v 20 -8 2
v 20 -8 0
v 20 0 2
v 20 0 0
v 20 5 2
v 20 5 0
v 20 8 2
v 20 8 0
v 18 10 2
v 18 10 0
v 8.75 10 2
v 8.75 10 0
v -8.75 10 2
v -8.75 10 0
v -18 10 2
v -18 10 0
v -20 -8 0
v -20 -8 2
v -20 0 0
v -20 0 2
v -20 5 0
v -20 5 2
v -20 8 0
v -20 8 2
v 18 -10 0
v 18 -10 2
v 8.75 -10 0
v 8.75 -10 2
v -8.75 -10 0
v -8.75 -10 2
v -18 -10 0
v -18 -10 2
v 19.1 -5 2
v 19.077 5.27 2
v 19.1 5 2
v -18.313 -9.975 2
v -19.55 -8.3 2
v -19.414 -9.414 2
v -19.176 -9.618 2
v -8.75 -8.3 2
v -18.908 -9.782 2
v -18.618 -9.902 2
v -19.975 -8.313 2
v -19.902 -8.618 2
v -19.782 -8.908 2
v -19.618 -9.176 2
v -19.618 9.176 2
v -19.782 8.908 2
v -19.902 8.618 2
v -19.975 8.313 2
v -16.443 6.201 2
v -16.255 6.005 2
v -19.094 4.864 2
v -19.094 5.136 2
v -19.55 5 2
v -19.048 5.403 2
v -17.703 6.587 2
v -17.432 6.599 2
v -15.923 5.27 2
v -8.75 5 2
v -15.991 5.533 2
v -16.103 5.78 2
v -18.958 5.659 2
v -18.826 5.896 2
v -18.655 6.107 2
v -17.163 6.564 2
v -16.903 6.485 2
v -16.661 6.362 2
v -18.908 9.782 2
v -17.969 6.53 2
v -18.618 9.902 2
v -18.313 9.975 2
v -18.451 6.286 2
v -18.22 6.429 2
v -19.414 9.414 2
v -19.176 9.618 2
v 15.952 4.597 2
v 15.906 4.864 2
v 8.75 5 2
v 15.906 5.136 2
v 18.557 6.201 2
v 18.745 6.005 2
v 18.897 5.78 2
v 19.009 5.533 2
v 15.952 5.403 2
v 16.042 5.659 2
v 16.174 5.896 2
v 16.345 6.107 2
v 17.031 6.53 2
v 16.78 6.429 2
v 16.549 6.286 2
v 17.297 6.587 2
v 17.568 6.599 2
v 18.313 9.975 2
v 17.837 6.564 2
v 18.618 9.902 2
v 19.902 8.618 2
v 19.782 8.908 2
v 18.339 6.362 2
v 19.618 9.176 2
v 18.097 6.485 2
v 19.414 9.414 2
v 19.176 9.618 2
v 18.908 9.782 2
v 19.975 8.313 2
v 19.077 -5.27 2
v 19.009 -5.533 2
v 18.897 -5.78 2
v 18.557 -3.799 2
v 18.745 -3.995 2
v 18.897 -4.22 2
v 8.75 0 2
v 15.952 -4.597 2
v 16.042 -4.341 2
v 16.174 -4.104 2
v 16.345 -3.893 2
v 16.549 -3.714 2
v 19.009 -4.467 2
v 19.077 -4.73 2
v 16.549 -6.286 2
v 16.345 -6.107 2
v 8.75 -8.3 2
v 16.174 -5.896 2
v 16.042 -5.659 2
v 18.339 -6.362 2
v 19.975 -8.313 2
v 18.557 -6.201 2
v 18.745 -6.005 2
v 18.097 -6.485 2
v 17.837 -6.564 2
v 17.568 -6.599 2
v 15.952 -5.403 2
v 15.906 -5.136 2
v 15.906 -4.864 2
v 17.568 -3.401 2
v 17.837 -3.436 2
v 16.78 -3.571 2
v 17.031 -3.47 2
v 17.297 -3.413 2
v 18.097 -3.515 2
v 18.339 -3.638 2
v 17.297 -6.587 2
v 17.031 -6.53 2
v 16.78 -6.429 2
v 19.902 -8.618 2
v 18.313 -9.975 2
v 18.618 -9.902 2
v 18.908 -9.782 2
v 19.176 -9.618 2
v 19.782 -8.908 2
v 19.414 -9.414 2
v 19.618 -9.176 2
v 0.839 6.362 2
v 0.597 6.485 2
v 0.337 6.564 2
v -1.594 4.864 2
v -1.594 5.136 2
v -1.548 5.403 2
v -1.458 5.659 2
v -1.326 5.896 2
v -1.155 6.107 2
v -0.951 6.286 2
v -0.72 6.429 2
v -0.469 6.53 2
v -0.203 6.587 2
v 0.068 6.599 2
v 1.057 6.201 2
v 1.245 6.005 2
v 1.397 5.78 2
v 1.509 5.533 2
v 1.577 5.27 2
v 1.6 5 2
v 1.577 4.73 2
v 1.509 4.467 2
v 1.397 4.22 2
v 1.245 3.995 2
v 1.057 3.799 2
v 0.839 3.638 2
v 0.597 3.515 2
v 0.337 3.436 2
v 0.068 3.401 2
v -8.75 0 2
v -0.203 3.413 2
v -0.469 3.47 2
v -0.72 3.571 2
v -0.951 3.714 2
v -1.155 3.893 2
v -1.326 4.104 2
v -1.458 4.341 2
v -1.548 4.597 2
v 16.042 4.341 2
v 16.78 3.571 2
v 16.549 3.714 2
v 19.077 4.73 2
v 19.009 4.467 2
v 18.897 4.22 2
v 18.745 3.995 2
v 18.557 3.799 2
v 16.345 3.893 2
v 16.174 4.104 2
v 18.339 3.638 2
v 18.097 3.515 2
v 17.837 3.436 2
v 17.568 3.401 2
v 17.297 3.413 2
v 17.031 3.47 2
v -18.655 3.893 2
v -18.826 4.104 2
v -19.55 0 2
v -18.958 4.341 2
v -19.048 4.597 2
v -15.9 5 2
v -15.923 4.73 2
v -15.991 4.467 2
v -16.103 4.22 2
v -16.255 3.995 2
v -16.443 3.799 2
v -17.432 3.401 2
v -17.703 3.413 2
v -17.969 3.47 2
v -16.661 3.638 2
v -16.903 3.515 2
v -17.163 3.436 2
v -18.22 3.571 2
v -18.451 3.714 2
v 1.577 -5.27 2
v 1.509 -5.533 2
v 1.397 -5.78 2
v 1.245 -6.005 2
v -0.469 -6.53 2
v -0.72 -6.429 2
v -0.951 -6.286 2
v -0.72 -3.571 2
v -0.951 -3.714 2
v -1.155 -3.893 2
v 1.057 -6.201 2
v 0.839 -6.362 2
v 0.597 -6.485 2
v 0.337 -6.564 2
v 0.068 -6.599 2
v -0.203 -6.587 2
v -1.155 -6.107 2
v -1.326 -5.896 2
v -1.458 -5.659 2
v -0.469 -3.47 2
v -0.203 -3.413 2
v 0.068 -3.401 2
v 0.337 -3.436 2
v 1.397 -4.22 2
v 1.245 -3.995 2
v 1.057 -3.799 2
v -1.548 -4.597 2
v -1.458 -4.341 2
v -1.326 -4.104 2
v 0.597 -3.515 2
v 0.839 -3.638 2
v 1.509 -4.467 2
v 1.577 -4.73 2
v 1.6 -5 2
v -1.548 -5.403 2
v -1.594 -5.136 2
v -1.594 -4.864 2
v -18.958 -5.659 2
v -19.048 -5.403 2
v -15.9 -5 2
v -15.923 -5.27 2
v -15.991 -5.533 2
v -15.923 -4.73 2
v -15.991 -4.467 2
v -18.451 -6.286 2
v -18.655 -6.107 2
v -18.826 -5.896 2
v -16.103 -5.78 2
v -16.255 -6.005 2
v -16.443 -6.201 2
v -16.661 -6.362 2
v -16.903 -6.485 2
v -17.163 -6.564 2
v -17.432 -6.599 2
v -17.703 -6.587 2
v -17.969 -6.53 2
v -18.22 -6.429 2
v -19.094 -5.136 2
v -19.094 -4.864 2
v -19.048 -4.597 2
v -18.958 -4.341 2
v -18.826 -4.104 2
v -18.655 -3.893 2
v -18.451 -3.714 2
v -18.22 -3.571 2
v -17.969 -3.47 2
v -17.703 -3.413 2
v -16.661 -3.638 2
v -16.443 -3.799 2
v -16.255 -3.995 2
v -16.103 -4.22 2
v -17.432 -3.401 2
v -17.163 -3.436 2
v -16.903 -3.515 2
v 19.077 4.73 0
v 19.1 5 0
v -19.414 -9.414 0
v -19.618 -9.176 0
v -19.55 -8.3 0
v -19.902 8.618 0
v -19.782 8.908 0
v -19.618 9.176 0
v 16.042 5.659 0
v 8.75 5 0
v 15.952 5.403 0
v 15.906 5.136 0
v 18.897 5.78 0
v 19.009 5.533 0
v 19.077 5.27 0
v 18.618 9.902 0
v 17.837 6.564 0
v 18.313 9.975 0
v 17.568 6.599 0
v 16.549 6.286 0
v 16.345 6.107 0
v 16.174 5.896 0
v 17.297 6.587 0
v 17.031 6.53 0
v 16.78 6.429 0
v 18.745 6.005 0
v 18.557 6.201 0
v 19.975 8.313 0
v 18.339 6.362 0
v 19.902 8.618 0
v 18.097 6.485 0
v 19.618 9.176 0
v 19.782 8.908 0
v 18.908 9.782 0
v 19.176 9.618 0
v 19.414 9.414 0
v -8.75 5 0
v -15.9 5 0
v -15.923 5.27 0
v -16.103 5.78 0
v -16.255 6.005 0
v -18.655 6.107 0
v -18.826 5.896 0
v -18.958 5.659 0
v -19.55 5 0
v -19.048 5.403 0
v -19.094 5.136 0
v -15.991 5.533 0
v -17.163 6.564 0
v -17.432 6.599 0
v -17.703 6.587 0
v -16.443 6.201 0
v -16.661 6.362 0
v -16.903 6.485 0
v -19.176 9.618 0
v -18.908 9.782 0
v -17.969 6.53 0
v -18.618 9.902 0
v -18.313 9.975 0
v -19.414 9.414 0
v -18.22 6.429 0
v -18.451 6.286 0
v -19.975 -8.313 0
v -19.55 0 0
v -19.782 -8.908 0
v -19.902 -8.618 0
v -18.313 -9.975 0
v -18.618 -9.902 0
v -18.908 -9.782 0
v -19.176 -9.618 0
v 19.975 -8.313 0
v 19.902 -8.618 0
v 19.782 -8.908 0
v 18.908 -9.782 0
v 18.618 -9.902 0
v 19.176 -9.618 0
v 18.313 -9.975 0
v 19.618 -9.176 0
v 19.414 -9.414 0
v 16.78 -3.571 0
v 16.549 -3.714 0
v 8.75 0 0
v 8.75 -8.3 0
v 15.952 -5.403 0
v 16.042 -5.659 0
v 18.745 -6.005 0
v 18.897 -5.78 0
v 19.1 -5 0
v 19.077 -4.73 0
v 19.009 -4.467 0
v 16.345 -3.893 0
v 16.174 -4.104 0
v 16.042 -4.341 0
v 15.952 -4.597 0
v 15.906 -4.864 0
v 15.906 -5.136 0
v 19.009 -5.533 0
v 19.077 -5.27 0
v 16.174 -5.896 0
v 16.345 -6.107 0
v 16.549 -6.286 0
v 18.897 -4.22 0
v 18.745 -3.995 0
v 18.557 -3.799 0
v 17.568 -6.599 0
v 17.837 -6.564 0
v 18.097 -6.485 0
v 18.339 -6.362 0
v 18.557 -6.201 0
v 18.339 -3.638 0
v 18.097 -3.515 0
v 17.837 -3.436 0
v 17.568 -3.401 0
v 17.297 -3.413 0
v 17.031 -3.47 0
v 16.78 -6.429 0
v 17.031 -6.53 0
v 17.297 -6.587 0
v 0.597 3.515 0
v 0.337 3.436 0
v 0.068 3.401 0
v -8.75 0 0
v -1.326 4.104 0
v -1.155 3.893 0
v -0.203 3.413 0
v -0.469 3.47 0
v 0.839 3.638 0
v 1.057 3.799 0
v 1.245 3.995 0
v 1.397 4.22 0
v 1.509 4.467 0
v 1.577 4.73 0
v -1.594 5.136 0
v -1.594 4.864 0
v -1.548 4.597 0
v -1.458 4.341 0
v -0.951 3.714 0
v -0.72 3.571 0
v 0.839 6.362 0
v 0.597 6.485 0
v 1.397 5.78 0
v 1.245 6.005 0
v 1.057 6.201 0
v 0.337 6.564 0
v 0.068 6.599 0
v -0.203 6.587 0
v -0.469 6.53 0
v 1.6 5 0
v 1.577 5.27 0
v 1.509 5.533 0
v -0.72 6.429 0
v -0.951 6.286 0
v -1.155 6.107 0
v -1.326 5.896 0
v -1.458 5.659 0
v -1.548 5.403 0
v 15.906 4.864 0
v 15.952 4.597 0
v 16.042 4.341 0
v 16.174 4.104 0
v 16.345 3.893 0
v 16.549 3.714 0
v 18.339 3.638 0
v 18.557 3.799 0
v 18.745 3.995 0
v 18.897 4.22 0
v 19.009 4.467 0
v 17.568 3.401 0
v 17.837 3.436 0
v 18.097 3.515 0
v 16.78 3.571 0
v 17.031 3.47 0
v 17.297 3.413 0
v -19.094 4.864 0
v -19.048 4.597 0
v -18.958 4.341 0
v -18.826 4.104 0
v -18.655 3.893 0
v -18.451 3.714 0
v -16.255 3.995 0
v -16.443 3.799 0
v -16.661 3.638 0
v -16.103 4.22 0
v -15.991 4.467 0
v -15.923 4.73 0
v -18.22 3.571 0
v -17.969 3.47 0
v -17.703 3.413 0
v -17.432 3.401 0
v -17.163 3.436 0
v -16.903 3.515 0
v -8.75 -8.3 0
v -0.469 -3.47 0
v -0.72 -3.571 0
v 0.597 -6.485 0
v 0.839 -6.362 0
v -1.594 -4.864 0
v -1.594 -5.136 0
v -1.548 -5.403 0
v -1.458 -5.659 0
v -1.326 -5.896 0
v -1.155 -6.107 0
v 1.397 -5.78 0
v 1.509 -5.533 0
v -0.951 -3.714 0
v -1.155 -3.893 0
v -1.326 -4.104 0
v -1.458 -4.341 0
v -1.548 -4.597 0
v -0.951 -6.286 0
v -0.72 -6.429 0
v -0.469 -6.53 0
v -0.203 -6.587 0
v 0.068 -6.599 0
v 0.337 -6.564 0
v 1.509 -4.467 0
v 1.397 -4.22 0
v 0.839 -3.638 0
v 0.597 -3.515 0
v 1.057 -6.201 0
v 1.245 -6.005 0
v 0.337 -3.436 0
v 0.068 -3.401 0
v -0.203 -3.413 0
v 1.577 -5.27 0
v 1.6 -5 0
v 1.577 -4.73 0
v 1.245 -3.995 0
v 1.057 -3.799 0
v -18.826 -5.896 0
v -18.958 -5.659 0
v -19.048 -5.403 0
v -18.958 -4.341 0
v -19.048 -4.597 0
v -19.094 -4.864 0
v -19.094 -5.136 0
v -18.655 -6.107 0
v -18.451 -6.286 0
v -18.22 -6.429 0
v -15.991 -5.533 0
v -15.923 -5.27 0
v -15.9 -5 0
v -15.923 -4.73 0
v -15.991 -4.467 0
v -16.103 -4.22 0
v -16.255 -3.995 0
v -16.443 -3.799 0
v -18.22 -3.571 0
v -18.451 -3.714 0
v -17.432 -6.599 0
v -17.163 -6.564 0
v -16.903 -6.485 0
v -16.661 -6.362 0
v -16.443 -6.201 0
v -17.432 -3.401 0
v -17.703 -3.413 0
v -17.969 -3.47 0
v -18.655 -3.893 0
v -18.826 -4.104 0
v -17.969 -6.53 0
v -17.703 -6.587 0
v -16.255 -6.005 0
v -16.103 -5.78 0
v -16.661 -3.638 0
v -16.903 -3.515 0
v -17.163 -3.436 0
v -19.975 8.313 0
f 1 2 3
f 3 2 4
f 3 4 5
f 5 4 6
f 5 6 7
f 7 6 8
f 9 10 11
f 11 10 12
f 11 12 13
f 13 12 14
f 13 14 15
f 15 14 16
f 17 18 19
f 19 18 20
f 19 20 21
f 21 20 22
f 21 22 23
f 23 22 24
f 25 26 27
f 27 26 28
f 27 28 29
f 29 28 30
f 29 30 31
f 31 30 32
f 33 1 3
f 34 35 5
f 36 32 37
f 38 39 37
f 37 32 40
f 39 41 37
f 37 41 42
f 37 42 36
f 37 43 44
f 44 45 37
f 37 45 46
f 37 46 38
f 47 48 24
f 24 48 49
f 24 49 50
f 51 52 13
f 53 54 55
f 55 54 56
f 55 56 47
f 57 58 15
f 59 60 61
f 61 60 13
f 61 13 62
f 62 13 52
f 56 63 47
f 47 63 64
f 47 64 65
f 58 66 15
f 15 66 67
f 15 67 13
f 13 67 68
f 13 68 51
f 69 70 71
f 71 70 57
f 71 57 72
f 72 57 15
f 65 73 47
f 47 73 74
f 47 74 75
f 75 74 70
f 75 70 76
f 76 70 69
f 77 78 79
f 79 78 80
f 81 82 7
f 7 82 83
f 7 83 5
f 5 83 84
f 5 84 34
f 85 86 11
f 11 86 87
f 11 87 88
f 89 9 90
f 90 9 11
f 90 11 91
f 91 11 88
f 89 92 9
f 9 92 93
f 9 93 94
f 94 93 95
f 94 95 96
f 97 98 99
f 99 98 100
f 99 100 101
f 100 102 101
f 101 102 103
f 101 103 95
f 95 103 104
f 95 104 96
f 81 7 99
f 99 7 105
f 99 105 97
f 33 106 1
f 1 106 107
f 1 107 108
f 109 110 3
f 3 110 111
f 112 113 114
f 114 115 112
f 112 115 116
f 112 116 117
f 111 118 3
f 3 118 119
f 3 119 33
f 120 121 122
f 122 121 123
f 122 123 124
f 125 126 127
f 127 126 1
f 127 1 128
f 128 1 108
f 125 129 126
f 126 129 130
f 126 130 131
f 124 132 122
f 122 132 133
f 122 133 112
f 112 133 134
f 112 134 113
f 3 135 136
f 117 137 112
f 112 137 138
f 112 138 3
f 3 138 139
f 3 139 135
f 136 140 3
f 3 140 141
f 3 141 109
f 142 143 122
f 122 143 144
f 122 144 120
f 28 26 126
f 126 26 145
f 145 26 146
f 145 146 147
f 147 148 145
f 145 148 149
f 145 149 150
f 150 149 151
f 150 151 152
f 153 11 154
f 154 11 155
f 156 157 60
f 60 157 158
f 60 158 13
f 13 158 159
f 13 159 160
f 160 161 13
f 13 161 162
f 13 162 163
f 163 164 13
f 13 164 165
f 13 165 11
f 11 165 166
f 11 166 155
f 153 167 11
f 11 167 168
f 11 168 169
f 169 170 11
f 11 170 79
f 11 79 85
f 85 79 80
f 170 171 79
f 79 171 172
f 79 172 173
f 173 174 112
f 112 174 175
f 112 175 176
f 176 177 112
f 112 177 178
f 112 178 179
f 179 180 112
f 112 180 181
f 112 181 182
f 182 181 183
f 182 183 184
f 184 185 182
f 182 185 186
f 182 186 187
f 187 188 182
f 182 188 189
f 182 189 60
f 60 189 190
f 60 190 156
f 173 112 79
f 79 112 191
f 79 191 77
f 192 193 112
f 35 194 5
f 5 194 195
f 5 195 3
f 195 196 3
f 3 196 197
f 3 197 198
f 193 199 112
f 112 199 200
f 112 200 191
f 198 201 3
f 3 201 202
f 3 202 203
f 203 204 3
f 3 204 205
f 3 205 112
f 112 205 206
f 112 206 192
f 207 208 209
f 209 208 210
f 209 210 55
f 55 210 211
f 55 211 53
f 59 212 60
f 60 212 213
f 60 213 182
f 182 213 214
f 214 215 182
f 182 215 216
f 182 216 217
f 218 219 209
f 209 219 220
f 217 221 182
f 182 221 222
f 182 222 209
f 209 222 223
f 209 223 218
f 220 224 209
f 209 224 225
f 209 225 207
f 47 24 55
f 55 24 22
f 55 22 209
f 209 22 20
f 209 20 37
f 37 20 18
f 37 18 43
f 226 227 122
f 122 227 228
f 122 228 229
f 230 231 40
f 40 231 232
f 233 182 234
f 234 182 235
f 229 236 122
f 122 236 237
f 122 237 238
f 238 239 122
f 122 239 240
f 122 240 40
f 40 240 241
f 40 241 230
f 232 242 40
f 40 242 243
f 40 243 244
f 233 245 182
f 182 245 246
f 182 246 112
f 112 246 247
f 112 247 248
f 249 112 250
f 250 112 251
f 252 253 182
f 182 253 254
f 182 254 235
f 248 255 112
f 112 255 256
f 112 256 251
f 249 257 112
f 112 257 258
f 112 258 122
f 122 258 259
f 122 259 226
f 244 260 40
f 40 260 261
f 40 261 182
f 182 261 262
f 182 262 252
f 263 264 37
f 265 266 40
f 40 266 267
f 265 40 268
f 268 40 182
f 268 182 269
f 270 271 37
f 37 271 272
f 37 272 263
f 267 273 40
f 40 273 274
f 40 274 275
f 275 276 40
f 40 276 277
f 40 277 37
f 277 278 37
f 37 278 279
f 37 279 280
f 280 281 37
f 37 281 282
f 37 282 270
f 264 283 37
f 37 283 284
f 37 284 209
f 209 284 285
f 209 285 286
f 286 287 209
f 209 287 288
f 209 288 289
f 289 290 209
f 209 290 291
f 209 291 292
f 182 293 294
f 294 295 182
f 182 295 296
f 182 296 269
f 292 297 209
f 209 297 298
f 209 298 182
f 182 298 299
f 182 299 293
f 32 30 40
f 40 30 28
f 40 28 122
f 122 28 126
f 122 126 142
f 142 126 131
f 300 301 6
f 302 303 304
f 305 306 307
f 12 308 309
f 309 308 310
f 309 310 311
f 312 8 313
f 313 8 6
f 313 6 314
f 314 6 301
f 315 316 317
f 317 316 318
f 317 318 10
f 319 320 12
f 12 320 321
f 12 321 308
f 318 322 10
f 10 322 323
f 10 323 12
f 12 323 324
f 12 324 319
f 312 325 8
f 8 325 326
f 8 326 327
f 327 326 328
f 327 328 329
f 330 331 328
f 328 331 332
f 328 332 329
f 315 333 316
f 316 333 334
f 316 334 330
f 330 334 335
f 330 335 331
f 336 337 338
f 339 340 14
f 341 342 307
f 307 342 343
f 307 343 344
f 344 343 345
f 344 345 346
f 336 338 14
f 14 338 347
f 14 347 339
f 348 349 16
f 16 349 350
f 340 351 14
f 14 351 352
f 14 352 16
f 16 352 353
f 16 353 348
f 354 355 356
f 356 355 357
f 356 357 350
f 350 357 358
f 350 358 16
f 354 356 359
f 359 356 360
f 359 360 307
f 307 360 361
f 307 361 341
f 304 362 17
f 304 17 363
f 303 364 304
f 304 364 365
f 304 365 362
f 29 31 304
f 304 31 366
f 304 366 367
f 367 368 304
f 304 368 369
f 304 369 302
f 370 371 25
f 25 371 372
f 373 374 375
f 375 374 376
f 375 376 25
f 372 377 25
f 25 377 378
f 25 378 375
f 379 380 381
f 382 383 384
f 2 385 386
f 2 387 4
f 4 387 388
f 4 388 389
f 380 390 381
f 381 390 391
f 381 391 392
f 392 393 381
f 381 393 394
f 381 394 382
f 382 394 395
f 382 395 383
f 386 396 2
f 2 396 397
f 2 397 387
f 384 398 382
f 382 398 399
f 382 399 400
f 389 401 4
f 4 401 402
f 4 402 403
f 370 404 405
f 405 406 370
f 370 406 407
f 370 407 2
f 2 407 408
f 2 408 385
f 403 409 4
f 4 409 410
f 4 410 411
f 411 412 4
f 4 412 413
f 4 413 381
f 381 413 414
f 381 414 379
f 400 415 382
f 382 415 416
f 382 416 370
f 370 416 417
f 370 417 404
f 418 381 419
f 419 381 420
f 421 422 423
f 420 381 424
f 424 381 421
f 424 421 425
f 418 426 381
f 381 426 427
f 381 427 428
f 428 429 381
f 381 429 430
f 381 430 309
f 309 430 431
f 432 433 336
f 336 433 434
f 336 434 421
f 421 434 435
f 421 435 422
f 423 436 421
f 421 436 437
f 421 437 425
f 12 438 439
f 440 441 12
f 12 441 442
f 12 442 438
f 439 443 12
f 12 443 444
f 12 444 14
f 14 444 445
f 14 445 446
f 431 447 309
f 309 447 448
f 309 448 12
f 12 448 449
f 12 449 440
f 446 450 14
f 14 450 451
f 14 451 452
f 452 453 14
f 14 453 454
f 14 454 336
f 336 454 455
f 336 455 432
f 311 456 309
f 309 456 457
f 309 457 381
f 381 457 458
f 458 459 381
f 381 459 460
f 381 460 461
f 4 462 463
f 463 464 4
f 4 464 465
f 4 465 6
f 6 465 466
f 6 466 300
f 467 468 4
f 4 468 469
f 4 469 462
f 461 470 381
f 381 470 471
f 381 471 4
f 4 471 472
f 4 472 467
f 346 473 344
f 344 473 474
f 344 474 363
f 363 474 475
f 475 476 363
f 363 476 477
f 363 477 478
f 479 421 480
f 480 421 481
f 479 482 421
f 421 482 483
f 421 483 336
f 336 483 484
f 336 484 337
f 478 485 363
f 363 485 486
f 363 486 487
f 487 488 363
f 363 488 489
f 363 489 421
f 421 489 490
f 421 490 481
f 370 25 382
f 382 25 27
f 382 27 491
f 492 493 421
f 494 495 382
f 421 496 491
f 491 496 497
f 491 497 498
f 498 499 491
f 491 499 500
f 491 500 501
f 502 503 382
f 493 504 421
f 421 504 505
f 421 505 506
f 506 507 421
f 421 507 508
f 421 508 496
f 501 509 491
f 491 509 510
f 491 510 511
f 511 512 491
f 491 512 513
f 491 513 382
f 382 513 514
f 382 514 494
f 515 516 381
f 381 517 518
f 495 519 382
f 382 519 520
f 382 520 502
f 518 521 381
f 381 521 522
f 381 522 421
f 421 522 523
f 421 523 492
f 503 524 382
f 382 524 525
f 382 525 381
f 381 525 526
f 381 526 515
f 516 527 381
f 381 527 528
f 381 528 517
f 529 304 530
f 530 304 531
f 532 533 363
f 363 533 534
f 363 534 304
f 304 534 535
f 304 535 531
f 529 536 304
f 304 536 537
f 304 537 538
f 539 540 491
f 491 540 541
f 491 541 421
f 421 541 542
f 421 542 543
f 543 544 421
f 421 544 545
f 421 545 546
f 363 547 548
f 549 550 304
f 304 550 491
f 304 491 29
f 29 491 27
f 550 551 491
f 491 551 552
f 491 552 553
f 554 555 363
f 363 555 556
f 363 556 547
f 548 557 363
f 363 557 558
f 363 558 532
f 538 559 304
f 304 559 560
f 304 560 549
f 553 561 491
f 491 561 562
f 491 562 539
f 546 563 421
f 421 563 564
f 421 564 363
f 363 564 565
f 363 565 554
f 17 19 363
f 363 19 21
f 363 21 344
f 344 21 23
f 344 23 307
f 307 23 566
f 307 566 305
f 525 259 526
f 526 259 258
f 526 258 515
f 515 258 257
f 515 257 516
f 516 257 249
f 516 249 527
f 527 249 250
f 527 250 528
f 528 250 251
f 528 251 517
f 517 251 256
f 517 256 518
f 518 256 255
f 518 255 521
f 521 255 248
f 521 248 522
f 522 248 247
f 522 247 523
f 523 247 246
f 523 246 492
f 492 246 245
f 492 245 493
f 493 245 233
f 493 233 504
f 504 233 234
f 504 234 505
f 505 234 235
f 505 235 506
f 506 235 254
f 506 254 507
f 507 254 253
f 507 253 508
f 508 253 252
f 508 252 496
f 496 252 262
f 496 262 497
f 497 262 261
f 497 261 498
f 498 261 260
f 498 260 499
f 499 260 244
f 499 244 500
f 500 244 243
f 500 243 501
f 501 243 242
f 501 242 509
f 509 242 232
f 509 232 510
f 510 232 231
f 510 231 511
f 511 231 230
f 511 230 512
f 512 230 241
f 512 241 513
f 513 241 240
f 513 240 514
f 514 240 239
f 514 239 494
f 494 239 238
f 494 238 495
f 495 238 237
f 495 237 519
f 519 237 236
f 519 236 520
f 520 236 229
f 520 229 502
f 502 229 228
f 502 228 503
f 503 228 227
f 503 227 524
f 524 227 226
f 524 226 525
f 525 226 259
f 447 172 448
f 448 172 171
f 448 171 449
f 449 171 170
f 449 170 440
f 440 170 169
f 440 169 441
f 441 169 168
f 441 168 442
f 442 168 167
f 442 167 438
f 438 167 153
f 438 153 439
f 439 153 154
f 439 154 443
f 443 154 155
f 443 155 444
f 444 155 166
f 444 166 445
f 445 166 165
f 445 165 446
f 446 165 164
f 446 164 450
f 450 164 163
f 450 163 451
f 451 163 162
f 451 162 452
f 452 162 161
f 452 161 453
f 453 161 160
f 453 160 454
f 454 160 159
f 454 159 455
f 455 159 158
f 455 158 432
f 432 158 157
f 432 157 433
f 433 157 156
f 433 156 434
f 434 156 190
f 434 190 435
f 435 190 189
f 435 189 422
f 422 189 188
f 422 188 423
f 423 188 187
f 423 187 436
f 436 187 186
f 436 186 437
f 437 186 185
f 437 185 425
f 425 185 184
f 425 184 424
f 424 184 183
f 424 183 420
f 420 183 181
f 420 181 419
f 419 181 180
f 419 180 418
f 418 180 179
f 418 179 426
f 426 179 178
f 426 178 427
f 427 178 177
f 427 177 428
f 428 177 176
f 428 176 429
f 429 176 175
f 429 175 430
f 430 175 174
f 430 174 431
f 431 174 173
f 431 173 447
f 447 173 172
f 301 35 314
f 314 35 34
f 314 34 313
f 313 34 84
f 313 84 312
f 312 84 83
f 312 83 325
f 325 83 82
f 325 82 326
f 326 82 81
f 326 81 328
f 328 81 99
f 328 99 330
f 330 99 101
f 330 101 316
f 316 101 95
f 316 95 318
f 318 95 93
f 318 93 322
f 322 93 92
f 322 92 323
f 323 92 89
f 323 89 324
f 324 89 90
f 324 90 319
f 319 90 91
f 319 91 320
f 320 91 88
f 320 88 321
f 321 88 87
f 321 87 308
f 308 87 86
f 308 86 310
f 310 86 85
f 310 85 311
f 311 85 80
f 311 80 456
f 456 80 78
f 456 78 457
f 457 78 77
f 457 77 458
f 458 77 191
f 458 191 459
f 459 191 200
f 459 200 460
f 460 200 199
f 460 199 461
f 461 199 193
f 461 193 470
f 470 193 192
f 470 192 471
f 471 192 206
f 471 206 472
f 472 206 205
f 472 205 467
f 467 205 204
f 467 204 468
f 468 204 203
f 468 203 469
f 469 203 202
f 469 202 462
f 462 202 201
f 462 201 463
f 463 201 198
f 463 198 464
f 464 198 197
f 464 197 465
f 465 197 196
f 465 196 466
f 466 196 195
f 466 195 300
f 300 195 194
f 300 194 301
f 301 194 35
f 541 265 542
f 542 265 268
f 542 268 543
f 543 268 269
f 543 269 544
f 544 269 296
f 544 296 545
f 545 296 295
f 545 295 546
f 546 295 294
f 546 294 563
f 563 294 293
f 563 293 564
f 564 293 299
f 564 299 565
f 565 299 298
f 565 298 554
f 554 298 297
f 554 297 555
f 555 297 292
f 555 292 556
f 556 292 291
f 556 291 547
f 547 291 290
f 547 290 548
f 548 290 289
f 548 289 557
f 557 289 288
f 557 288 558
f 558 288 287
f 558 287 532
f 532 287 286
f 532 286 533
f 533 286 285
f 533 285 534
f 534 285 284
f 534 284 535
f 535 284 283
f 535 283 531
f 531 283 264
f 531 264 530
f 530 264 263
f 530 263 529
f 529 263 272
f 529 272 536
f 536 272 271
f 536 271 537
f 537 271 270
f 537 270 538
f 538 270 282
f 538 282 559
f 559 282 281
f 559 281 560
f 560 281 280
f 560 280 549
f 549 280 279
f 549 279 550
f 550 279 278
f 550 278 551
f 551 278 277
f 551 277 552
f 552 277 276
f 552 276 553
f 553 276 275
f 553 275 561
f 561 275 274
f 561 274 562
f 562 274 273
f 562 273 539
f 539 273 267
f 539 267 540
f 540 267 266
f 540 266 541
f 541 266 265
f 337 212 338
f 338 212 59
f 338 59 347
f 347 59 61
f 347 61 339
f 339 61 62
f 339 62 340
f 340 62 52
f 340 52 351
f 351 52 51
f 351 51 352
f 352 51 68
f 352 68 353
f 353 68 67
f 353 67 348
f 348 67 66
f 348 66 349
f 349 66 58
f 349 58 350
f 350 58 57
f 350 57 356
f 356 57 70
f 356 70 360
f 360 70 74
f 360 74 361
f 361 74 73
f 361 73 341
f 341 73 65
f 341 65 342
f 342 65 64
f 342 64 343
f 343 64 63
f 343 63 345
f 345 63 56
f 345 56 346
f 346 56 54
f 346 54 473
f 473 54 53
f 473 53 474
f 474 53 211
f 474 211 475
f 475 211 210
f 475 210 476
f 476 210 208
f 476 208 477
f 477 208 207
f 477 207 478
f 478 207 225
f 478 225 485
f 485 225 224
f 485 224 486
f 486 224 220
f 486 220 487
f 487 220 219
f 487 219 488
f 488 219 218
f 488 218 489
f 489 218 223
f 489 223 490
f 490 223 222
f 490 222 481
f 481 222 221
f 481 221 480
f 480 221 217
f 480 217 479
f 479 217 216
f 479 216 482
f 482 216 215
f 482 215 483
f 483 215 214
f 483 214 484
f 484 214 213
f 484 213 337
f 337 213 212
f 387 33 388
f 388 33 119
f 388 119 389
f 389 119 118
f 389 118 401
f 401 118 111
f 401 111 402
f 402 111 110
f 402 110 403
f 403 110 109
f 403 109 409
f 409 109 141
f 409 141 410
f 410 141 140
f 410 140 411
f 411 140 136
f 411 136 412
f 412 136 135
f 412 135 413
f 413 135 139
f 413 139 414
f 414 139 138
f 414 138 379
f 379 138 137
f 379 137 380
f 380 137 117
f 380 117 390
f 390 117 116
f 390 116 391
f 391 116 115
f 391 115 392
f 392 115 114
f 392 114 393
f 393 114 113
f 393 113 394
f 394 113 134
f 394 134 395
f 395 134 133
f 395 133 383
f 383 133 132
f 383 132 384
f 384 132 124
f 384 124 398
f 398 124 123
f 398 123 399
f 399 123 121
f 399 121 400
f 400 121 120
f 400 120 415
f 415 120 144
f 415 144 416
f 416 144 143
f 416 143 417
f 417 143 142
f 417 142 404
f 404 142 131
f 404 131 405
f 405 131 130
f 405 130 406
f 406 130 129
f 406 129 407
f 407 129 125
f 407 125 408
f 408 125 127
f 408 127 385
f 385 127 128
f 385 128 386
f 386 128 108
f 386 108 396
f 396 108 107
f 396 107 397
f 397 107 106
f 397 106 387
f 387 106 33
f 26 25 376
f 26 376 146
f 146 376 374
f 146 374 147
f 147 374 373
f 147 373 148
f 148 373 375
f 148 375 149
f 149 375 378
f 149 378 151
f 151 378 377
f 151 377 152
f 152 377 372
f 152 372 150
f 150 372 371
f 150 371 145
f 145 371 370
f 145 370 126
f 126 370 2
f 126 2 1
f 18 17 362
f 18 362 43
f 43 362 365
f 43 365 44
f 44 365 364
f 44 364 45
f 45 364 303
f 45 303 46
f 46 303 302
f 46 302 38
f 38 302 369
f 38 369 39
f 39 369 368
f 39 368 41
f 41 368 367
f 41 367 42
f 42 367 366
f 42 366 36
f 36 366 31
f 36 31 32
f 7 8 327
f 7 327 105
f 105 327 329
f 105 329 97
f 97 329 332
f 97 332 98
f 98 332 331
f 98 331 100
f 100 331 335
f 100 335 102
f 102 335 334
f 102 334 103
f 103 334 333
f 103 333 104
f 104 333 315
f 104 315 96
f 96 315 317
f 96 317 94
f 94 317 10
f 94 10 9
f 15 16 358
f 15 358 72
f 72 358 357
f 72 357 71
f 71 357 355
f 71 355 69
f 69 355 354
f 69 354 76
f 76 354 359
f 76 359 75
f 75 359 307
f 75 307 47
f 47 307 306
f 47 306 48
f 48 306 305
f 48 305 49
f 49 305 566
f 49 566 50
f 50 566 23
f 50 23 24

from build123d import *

# Parameters (mm, degrees)
SKETCH1_W            = 40
SKETCH1_H            = 20
BOSS_EXTRUDE1_DEPTH  = 2
M3_CLEARANCE_HOLE1_D = 3.2
FILLET1_R            = 2


with BuildPart() as part:
    # Sketch1 → Boss-Extrude1 (new body)
    with BuildSketch(Plane.XY):
        Rectangle(SKETCH1_W, SKETCH1_H)
    extrude(amount=BOSS_EXTRUDE1_DEPTH)

    # M3 Clearance Hole1 (through all)
    with Locations(Plane.XY.offset(2)):
        with Locations((17.5, -5), (-17.5, 5), (-17.5, -5), (17.5, 5), (0, 5), (0, -5)):
            Hole(M3_CLEARANCE_HOLE1_D / 2)

    # Fillet1
    fillet1_edges = [part.edges().sort_by_distance(p)[0] for p in [
        (20, -10, 1),
        (-20, -10, 1),
        (-20, 10, 1),
        (20, 10, 1),
    ]]
    fillet(fillet1_edges, radius=FILLET1_R)


solid = part.part
